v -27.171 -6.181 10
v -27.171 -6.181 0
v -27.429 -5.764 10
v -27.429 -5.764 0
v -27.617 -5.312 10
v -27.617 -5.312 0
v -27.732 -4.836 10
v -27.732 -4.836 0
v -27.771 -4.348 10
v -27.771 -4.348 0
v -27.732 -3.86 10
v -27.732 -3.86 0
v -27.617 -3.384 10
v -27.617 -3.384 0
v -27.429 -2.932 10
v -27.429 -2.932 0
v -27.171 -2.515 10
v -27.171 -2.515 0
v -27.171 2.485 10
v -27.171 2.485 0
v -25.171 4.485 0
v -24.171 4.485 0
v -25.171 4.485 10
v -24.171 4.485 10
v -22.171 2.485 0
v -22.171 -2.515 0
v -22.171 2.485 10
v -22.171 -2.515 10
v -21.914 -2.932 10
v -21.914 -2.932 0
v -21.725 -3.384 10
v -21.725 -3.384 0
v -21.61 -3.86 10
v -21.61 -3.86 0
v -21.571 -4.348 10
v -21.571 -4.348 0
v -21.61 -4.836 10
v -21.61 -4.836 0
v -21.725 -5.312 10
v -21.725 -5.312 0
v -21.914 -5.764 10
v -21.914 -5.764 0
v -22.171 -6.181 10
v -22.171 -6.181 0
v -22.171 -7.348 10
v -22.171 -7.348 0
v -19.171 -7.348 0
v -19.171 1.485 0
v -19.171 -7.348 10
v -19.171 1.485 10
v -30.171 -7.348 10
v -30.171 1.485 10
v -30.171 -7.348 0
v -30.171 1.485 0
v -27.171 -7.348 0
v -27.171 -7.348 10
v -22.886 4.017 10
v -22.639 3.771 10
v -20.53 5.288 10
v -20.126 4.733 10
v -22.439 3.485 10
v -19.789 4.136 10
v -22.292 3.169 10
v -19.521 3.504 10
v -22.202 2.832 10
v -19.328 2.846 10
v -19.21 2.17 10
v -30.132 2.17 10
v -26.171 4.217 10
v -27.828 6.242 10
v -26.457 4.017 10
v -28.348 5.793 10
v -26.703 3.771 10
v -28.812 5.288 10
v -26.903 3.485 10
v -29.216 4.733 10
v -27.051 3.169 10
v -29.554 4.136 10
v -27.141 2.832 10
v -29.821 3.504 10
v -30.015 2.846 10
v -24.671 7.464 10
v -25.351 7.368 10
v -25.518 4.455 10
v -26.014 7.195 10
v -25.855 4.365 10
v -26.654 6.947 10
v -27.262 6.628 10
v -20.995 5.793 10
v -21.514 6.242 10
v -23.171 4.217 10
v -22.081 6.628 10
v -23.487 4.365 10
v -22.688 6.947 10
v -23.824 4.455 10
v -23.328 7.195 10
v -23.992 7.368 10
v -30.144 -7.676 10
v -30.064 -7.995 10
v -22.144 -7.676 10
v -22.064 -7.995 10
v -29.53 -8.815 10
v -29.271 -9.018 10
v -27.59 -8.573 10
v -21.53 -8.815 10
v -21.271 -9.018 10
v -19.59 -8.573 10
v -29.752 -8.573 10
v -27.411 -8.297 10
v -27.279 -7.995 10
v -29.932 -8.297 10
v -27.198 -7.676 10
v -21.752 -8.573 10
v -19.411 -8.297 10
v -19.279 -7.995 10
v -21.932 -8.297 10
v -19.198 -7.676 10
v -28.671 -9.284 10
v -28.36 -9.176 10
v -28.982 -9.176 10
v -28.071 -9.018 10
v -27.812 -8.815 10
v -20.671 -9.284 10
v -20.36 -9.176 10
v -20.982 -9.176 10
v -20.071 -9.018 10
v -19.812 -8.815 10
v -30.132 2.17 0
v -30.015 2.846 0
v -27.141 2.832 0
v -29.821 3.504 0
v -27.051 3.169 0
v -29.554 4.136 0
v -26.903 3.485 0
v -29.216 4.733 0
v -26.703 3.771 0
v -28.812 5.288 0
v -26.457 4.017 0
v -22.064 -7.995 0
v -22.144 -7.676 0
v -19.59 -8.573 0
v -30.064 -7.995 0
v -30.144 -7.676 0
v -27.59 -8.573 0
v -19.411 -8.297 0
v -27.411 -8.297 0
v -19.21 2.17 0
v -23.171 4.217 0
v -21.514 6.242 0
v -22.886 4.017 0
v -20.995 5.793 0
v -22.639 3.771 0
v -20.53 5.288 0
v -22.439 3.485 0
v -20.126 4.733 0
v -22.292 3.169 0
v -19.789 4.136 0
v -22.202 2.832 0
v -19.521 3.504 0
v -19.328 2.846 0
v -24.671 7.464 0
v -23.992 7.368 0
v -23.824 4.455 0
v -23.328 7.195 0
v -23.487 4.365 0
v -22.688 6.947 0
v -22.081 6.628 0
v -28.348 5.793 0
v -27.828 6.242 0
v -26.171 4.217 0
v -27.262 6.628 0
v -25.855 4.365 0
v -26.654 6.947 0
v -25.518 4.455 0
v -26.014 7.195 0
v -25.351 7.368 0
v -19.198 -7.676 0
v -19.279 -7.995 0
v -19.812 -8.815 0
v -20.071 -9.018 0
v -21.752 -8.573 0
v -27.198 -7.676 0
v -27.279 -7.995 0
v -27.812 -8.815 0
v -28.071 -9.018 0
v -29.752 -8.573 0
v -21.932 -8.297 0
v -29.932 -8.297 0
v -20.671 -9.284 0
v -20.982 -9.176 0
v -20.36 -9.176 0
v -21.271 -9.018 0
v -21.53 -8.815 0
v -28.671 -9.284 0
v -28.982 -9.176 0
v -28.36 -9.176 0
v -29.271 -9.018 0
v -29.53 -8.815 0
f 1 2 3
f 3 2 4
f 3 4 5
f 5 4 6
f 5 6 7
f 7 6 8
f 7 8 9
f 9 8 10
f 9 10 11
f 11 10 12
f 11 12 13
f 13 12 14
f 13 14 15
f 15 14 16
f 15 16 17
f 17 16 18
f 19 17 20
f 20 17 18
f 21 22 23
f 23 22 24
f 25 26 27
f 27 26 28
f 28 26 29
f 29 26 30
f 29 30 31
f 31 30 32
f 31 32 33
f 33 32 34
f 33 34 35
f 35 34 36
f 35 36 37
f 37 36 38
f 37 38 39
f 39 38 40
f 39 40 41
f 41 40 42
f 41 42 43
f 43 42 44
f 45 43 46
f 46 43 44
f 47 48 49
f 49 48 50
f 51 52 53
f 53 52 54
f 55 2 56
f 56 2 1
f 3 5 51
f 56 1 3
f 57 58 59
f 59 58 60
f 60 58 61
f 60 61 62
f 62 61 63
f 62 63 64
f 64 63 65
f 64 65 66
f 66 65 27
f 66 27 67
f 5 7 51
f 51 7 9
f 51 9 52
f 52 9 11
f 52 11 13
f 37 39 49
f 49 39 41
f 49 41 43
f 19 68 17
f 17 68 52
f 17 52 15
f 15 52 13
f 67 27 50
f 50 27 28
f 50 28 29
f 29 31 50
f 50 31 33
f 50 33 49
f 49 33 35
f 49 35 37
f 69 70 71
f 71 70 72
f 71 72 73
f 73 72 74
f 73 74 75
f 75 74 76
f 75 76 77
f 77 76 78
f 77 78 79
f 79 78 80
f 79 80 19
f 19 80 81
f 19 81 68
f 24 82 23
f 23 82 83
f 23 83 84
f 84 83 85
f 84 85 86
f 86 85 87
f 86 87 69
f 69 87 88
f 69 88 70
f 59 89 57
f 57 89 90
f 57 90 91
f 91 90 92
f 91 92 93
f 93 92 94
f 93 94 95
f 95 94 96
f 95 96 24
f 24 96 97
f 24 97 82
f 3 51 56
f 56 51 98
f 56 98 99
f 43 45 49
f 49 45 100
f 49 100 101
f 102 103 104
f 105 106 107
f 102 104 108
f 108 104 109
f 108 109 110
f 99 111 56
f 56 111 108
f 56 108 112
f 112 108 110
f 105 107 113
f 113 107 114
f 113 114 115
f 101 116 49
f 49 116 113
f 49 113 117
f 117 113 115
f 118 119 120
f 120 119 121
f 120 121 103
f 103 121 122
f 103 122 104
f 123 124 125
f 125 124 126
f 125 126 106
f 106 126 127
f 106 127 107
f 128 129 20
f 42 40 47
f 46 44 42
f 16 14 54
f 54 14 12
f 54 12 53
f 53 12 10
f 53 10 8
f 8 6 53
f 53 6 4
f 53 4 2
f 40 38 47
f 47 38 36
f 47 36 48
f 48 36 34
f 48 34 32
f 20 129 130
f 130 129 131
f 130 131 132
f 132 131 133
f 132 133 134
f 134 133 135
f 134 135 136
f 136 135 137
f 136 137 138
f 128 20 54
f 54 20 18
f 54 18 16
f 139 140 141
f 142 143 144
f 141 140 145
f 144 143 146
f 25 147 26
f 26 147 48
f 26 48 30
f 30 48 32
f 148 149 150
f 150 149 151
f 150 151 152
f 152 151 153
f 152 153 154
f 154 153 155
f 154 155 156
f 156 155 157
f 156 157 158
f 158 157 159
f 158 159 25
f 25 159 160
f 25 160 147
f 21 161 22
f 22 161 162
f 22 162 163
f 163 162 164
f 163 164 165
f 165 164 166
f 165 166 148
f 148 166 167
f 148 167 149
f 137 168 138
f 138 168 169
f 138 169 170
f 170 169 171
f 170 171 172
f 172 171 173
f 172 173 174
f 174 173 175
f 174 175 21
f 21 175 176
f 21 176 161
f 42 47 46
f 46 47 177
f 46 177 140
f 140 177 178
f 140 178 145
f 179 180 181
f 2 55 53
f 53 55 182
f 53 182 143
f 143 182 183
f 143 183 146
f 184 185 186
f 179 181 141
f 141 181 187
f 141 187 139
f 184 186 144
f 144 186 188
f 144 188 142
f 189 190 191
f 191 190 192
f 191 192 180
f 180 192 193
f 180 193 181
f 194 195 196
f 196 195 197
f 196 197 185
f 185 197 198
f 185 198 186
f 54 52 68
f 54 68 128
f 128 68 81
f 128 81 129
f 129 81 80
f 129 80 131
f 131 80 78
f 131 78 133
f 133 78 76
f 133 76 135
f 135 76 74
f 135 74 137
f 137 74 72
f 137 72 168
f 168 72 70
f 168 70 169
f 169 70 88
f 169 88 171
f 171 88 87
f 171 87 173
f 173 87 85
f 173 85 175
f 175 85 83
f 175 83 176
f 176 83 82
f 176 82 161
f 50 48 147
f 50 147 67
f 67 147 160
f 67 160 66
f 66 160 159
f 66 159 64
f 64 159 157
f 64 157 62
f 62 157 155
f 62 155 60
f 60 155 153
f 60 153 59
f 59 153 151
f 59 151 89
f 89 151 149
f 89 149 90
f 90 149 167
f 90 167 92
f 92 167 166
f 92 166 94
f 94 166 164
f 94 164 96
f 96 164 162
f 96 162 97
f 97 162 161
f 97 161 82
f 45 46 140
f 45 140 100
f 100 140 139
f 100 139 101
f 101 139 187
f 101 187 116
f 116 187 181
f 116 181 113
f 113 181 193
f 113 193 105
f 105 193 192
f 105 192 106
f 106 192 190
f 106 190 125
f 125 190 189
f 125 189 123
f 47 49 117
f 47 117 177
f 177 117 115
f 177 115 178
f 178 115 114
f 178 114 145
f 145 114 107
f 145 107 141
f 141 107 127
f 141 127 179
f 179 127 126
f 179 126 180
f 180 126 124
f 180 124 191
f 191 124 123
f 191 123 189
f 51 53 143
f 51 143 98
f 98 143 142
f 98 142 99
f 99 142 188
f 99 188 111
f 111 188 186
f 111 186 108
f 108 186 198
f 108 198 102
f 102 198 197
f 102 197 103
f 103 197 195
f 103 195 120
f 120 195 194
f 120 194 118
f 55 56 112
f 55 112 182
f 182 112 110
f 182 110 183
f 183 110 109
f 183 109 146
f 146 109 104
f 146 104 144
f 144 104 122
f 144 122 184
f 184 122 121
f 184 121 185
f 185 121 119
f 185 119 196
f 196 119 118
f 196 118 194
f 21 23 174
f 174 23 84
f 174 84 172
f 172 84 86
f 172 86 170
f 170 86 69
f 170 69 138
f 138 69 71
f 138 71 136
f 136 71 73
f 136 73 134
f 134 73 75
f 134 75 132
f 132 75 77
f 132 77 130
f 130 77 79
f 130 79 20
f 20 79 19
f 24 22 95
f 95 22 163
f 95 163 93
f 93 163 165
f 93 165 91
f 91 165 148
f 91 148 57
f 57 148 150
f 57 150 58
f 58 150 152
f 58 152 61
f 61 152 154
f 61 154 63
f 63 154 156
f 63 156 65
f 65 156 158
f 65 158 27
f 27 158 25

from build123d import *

# Parameters (mm, degrees)
BOSS_EXTRUDE1_DEPTH = 10
FILLET1_R           = 6
FILLET2_R           = 2
FILLET3_R           = 2


with BuildPart() as part:
    # Sketch1 → Boss-Extrude1 (new body)
    with BuildSketch(Plane.XY):
        with BuildLine():
            Line((-27.171188048, -9.347902097), (-27.171188048, -6.180932375))
            ThreePointArc((-27.171188048, -6.180932375), (-27.771188048, -4.347902097), (-27.171188048, -2.514871819))
            Line((-27.171188048, -2.514871819), (-27.171188048, 4.485128181))
            Line((-27.171188048, 4.485128181), (-22.171188048, 4.485128181))
            Line((-22.171188048, 4.485128181), (-22.171188048, -2.514871819))
            ThreePointArc((-22.171188048, -2.514871819), (-21.725004076, -3.38353702), (-21.571188048, -4.347902097))
            ThreePointArc((-21.571188048, -4.347902097), (-21.725004076, -5.312267173), (-22.171188048, -6.180932375))
            Line((-22.171188048, -6.180932375), (-22.171188048, -9.347902097))
            Line((-22.171188048, -9.347902097), (-19.171188048, -9.347902097))
            Line((-19.171188048, -9.347902097), (-19.171188048, 7.485128181))
            Line((-19.171188048, 7.485128181), (-30.171188048, 7.485128181))
            Line((-30.171188048, 7.485128181), (-30.171188048, -9.347902097))
            Line((-30.171188048, -9.347902097), (-27.171188048, -9.347902097))
        make_face()
    extrude(amount=BOSS_EXTRUDE1_DEPTH)

    # Fillet1
    # the kernel refuses this fillet: 6 mm, written as the material it takes off along each edge
    with BuildSketch(Plane(origin=(-19.171188048, 7.485128181, -15), x_dir=(-1, 0, 0), z_dir=(0, 0, 1))) as fillet1_piece_1:
        with BuildLine():
            CenterArc((FILLET1_R, FILLET1_R), FILLET1_R, 180, 90)
            Line((0, FILLET1_R), (0, 0))
            Line((0, 0), (FILLET1_R, 0))
        make_face()
    extrude(amount=40, mode=Mode.SUBTRACT)
    with BuildSketch(Plane(origin=(-30.171188048, 7.485128181, -15), x_dir=(1, 0, 0), z_dir=(0, 0, 1))) as fillet1_piece_2:
        with BuildLine():
            CenterArc((FILLET1_R, -FILLET1_R), FILLET1_R, 90, 90)
            Line((0, -FILLET1_R), (0, 0))
            Line((0, 0), (FILLET1_R, 0))
        make_face()
    extrude(amount=40, mode=Mode.SUBTRACT)

    # Fillet2
    # the kernel refuses this fillet: 2 mm, written as the material it takes off along each edge
    with BuildSketch(Plane(origin=(-19.171188048, -9.347902097, -5), x_dir=(0, 1, 0), z_dir=(0, 0, 1)), Plane(origin=(-22.171188048, -9.347902097, -5), x_dir=(1, 0, 0), z_dir=(0, 0, 1)), Plane(origin=(-30.171188048, -9.347902097, -5), x_dir=(1, 0, 0), z_dir=(0, 0, 1))) as fillet2_piece_1:
        with BuildLine():
            CenterArc((FILLET2_R, FILLET2_R), FILLET2_R, 180, 90)
            Line((0, FILLET2_R), (0, 0))
            Line((0, 0), (FILLET2_R, 0))
        make_face()
    extrude(amount=20, mode=Mode.SUBTRACT)
    with BuildSketch(Plane(origin=(-27.171188048, -9.347902097, -5), x_dir=(-1, 0, 0), z_dir=(0, 0, 1))) as fillet2_piece_2:
        with BuildLine():
            CenterArc((FILLET2_R, -FILLET2_R), FILLET2_R, 90, 90)
            Line((0, -FILLET2_R), (0, 0))
            Line((0, 0), (FILLET2_R, 0))
        make_face()
    extrude(amount=20, mode=Mode.SUBTRACT)

    # Fillet3
    fillet3_edges = [part.edges().sort_by_distance(p)[0] for p in [
        (-22.171188048, 4.485128181, 5),
        (-27.171188048, 4.485128181, 5),
    ]]
    fillet(fillet3_edges, radius=FILLET3_R)


solid = part.part
